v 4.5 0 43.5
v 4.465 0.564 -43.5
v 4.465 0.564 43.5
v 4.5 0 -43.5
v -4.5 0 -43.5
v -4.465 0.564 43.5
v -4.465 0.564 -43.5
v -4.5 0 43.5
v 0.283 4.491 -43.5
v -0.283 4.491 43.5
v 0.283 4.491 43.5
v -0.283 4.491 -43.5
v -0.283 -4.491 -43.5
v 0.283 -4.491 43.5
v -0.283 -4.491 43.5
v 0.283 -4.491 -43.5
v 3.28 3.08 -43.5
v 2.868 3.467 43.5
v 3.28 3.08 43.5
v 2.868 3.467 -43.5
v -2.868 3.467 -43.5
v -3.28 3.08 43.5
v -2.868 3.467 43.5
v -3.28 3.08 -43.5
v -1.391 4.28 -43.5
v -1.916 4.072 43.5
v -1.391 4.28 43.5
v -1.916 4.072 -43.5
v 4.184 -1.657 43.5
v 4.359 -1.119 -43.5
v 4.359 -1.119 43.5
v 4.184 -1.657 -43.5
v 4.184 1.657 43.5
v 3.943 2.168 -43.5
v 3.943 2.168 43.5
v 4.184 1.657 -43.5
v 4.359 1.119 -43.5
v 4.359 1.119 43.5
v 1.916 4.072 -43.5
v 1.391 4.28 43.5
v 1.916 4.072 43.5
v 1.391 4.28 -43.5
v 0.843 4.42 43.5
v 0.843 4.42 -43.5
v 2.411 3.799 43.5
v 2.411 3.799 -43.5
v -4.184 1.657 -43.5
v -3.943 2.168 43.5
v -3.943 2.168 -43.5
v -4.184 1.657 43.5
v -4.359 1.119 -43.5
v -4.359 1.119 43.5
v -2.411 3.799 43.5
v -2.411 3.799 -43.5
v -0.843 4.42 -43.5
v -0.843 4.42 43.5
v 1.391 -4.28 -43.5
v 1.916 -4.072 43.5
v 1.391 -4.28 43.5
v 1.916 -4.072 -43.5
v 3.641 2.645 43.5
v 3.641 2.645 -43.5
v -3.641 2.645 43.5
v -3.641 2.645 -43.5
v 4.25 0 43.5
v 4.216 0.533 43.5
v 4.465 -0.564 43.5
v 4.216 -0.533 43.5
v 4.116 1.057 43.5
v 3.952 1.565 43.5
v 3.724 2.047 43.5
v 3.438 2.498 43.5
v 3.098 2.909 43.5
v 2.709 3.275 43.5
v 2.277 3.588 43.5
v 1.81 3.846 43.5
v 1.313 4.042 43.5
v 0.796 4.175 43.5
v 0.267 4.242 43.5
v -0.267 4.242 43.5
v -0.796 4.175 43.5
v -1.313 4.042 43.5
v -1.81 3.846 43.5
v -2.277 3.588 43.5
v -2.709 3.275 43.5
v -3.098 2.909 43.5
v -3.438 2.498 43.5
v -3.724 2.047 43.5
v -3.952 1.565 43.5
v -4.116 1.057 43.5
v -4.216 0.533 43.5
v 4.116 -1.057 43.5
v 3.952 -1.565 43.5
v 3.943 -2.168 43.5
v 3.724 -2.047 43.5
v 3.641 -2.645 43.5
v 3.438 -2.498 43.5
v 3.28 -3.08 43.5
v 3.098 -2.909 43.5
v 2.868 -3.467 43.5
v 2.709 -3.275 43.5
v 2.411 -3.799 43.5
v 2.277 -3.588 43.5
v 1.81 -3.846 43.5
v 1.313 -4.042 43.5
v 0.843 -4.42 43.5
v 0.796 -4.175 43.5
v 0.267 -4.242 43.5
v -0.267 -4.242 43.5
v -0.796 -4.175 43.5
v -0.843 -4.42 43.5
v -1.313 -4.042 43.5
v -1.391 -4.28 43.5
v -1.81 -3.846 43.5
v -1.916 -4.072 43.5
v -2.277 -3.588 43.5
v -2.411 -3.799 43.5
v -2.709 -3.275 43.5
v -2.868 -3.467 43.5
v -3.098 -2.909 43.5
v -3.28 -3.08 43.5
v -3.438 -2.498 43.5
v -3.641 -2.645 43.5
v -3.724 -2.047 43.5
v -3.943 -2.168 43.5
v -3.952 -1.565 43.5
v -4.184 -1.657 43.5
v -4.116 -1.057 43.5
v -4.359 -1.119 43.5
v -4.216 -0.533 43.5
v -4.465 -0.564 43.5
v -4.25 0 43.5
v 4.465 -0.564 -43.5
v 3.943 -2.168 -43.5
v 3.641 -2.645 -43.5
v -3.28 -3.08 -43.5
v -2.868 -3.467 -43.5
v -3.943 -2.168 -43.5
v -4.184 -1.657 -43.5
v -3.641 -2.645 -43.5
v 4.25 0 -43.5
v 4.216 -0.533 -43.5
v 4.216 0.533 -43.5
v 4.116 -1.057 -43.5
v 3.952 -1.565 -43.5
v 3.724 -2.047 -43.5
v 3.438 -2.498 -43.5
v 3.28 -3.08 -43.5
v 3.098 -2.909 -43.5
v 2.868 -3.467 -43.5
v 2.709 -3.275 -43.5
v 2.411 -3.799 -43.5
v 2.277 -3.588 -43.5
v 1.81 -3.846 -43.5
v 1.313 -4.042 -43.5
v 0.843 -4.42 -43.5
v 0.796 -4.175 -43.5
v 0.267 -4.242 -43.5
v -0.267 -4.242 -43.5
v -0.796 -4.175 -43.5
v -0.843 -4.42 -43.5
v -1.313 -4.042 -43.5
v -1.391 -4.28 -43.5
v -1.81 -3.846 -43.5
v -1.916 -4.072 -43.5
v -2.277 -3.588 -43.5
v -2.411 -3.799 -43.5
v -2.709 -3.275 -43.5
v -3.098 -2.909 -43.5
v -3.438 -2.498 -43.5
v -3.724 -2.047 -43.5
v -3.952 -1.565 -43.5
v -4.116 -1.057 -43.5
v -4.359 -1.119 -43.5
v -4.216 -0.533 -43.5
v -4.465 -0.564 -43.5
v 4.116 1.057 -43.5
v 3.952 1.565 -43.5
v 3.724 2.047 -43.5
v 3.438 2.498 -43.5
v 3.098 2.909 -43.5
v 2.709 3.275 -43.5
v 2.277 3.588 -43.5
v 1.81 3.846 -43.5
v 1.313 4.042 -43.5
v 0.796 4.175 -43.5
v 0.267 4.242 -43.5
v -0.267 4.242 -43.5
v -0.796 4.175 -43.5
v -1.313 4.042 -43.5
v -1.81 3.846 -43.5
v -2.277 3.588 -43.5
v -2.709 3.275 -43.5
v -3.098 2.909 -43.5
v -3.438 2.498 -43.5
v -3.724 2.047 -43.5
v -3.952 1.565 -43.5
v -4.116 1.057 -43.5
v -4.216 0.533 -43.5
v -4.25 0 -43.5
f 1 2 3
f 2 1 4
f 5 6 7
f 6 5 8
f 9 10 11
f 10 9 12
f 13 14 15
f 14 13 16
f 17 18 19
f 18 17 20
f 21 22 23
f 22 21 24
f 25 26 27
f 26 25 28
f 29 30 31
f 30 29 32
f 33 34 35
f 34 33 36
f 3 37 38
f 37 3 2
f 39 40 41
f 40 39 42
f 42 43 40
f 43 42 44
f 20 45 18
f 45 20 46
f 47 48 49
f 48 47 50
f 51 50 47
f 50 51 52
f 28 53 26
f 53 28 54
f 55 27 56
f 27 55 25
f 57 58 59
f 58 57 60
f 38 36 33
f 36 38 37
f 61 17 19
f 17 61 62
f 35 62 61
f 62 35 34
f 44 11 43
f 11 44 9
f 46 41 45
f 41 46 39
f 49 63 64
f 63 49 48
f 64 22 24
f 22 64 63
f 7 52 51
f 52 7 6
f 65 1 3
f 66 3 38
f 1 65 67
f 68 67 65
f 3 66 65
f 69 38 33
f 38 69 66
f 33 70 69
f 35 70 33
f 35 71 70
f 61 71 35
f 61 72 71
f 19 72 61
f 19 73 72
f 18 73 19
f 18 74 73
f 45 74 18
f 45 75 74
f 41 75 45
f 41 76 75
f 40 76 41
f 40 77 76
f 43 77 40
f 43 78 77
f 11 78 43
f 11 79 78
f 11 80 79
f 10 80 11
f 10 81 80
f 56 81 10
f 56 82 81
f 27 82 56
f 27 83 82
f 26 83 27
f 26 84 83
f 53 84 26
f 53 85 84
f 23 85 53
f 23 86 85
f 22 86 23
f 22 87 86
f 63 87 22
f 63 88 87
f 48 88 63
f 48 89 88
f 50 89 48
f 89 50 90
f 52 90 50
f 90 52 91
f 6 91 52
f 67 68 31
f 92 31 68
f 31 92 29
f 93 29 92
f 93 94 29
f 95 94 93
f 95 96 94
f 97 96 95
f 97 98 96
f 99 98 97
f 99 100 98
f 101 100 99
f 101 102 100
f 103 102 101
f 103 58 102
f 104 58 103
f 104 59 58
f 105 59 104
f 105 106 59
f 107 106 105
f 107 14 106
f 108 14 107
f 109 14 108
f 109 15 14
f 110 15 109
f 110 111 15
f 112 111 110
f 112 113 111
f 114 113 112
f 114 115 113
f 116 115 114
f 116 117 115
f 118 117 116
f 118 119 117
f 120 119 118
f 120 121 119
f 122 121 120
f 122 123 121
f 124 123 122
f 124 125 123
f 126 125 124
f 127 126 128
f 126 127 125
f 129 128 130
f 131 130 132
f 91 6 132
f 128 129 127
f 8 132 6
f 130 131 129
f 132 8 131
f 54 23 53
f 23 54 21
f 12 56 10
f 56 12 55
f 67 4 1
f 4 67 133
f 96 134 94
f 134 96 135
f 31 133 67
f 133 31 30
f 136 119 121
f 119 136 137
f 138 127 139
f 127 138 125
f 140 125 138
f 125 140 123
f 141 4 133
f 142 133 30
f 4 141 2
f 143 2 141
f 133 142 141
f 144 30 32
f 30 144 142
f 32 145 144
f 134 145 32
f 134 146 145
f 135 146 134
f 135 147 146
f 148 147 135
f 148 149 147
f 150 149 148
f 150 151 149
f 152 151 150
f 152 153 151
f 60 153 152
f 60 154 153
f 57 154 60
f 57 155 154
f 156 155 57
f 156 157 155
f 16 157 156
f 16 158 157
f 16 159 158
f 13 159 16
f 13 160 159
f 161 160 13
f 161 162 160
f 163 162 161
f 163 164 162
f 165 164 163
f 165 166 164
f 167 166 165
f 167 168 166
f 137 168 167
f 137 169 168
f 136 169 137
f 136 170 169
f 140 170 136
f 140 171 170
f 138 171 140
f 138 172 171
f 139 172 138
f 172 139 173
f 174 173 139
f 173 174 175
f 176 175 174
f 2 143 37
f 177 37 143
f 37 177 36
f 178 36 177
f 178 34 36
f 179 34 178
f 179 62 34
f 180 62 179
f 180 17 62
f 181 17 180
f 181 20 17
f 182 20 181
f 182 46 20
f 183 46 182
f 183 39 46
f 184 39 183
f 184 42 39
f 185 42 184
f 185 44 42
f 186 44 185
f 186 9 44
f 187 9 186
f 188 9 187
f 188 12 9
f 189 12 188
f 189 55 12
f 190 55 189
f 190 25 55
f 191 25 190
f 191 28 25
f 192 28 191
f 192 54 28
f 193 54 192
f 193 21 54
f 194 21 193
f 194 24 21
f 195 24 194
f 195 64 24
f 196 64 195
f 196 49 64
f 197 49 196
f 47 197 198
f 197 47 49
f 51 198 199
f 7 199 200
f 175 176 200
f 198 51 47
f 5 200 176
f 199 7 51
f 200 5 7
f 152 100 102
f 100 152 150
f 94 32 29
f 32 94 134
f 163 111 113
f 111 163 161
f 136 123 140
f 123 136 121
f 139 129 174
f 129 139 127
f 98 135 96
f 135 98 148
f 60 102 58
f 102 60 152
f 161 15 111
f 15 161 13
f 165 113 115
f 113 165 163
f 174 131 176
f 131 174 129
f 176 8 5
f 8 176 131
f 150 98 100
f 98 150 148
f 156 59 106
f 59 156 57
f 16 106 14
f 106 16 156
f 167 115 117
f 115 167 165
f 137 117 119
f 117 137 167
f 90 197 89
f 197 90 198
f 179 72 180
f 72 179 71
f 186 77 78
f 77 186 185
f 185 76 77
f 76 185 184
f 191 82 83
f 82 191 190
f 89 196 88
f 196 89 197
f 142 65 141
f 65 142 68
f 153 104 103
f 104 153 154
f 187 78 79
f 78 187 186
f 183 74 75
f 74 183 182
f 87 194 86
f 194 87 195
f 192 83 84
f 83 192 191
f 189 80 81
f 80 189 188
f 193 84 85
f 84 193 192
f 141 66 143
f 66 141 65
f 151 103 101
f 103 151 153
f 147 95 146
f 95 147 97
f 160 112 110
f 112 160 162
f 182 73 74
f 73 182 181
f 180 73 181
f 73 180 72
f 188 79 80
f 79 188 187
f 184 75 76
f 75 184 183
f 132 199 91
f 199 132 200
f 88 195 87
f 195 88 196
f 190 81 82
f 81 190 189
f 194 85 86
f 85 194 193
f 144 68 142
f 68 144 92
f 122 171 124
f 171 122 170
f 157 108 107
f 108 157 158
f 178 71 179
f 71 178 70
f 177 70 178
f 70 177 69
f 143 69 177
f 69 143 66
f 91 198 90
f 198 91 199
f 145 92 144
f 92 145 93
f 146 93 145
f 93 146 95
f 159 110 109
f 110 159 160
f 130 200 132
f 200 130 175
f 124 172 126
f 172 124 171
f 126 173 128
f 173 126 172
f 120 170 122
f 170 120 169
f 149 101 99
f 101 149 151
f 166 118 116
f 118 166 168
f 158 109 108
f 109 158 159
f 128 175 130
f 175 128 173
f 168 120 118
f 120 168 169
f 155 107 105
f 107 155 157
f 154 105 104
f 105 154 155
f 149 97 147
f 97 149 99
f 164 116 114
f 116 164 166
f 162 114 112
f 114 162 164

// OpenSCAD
$fn = 50;


difference() {
	union() {
		translate(v = [0, 0, -43.5000000000]) {
			cylinder(h = 87, r = 4.5000000000);
		}
	}
	union() {
		translate(v = [0, 0, -100.0000000000]) {
			cylinder(h = 200, r = 4.2500000000);
		}
	}
}
